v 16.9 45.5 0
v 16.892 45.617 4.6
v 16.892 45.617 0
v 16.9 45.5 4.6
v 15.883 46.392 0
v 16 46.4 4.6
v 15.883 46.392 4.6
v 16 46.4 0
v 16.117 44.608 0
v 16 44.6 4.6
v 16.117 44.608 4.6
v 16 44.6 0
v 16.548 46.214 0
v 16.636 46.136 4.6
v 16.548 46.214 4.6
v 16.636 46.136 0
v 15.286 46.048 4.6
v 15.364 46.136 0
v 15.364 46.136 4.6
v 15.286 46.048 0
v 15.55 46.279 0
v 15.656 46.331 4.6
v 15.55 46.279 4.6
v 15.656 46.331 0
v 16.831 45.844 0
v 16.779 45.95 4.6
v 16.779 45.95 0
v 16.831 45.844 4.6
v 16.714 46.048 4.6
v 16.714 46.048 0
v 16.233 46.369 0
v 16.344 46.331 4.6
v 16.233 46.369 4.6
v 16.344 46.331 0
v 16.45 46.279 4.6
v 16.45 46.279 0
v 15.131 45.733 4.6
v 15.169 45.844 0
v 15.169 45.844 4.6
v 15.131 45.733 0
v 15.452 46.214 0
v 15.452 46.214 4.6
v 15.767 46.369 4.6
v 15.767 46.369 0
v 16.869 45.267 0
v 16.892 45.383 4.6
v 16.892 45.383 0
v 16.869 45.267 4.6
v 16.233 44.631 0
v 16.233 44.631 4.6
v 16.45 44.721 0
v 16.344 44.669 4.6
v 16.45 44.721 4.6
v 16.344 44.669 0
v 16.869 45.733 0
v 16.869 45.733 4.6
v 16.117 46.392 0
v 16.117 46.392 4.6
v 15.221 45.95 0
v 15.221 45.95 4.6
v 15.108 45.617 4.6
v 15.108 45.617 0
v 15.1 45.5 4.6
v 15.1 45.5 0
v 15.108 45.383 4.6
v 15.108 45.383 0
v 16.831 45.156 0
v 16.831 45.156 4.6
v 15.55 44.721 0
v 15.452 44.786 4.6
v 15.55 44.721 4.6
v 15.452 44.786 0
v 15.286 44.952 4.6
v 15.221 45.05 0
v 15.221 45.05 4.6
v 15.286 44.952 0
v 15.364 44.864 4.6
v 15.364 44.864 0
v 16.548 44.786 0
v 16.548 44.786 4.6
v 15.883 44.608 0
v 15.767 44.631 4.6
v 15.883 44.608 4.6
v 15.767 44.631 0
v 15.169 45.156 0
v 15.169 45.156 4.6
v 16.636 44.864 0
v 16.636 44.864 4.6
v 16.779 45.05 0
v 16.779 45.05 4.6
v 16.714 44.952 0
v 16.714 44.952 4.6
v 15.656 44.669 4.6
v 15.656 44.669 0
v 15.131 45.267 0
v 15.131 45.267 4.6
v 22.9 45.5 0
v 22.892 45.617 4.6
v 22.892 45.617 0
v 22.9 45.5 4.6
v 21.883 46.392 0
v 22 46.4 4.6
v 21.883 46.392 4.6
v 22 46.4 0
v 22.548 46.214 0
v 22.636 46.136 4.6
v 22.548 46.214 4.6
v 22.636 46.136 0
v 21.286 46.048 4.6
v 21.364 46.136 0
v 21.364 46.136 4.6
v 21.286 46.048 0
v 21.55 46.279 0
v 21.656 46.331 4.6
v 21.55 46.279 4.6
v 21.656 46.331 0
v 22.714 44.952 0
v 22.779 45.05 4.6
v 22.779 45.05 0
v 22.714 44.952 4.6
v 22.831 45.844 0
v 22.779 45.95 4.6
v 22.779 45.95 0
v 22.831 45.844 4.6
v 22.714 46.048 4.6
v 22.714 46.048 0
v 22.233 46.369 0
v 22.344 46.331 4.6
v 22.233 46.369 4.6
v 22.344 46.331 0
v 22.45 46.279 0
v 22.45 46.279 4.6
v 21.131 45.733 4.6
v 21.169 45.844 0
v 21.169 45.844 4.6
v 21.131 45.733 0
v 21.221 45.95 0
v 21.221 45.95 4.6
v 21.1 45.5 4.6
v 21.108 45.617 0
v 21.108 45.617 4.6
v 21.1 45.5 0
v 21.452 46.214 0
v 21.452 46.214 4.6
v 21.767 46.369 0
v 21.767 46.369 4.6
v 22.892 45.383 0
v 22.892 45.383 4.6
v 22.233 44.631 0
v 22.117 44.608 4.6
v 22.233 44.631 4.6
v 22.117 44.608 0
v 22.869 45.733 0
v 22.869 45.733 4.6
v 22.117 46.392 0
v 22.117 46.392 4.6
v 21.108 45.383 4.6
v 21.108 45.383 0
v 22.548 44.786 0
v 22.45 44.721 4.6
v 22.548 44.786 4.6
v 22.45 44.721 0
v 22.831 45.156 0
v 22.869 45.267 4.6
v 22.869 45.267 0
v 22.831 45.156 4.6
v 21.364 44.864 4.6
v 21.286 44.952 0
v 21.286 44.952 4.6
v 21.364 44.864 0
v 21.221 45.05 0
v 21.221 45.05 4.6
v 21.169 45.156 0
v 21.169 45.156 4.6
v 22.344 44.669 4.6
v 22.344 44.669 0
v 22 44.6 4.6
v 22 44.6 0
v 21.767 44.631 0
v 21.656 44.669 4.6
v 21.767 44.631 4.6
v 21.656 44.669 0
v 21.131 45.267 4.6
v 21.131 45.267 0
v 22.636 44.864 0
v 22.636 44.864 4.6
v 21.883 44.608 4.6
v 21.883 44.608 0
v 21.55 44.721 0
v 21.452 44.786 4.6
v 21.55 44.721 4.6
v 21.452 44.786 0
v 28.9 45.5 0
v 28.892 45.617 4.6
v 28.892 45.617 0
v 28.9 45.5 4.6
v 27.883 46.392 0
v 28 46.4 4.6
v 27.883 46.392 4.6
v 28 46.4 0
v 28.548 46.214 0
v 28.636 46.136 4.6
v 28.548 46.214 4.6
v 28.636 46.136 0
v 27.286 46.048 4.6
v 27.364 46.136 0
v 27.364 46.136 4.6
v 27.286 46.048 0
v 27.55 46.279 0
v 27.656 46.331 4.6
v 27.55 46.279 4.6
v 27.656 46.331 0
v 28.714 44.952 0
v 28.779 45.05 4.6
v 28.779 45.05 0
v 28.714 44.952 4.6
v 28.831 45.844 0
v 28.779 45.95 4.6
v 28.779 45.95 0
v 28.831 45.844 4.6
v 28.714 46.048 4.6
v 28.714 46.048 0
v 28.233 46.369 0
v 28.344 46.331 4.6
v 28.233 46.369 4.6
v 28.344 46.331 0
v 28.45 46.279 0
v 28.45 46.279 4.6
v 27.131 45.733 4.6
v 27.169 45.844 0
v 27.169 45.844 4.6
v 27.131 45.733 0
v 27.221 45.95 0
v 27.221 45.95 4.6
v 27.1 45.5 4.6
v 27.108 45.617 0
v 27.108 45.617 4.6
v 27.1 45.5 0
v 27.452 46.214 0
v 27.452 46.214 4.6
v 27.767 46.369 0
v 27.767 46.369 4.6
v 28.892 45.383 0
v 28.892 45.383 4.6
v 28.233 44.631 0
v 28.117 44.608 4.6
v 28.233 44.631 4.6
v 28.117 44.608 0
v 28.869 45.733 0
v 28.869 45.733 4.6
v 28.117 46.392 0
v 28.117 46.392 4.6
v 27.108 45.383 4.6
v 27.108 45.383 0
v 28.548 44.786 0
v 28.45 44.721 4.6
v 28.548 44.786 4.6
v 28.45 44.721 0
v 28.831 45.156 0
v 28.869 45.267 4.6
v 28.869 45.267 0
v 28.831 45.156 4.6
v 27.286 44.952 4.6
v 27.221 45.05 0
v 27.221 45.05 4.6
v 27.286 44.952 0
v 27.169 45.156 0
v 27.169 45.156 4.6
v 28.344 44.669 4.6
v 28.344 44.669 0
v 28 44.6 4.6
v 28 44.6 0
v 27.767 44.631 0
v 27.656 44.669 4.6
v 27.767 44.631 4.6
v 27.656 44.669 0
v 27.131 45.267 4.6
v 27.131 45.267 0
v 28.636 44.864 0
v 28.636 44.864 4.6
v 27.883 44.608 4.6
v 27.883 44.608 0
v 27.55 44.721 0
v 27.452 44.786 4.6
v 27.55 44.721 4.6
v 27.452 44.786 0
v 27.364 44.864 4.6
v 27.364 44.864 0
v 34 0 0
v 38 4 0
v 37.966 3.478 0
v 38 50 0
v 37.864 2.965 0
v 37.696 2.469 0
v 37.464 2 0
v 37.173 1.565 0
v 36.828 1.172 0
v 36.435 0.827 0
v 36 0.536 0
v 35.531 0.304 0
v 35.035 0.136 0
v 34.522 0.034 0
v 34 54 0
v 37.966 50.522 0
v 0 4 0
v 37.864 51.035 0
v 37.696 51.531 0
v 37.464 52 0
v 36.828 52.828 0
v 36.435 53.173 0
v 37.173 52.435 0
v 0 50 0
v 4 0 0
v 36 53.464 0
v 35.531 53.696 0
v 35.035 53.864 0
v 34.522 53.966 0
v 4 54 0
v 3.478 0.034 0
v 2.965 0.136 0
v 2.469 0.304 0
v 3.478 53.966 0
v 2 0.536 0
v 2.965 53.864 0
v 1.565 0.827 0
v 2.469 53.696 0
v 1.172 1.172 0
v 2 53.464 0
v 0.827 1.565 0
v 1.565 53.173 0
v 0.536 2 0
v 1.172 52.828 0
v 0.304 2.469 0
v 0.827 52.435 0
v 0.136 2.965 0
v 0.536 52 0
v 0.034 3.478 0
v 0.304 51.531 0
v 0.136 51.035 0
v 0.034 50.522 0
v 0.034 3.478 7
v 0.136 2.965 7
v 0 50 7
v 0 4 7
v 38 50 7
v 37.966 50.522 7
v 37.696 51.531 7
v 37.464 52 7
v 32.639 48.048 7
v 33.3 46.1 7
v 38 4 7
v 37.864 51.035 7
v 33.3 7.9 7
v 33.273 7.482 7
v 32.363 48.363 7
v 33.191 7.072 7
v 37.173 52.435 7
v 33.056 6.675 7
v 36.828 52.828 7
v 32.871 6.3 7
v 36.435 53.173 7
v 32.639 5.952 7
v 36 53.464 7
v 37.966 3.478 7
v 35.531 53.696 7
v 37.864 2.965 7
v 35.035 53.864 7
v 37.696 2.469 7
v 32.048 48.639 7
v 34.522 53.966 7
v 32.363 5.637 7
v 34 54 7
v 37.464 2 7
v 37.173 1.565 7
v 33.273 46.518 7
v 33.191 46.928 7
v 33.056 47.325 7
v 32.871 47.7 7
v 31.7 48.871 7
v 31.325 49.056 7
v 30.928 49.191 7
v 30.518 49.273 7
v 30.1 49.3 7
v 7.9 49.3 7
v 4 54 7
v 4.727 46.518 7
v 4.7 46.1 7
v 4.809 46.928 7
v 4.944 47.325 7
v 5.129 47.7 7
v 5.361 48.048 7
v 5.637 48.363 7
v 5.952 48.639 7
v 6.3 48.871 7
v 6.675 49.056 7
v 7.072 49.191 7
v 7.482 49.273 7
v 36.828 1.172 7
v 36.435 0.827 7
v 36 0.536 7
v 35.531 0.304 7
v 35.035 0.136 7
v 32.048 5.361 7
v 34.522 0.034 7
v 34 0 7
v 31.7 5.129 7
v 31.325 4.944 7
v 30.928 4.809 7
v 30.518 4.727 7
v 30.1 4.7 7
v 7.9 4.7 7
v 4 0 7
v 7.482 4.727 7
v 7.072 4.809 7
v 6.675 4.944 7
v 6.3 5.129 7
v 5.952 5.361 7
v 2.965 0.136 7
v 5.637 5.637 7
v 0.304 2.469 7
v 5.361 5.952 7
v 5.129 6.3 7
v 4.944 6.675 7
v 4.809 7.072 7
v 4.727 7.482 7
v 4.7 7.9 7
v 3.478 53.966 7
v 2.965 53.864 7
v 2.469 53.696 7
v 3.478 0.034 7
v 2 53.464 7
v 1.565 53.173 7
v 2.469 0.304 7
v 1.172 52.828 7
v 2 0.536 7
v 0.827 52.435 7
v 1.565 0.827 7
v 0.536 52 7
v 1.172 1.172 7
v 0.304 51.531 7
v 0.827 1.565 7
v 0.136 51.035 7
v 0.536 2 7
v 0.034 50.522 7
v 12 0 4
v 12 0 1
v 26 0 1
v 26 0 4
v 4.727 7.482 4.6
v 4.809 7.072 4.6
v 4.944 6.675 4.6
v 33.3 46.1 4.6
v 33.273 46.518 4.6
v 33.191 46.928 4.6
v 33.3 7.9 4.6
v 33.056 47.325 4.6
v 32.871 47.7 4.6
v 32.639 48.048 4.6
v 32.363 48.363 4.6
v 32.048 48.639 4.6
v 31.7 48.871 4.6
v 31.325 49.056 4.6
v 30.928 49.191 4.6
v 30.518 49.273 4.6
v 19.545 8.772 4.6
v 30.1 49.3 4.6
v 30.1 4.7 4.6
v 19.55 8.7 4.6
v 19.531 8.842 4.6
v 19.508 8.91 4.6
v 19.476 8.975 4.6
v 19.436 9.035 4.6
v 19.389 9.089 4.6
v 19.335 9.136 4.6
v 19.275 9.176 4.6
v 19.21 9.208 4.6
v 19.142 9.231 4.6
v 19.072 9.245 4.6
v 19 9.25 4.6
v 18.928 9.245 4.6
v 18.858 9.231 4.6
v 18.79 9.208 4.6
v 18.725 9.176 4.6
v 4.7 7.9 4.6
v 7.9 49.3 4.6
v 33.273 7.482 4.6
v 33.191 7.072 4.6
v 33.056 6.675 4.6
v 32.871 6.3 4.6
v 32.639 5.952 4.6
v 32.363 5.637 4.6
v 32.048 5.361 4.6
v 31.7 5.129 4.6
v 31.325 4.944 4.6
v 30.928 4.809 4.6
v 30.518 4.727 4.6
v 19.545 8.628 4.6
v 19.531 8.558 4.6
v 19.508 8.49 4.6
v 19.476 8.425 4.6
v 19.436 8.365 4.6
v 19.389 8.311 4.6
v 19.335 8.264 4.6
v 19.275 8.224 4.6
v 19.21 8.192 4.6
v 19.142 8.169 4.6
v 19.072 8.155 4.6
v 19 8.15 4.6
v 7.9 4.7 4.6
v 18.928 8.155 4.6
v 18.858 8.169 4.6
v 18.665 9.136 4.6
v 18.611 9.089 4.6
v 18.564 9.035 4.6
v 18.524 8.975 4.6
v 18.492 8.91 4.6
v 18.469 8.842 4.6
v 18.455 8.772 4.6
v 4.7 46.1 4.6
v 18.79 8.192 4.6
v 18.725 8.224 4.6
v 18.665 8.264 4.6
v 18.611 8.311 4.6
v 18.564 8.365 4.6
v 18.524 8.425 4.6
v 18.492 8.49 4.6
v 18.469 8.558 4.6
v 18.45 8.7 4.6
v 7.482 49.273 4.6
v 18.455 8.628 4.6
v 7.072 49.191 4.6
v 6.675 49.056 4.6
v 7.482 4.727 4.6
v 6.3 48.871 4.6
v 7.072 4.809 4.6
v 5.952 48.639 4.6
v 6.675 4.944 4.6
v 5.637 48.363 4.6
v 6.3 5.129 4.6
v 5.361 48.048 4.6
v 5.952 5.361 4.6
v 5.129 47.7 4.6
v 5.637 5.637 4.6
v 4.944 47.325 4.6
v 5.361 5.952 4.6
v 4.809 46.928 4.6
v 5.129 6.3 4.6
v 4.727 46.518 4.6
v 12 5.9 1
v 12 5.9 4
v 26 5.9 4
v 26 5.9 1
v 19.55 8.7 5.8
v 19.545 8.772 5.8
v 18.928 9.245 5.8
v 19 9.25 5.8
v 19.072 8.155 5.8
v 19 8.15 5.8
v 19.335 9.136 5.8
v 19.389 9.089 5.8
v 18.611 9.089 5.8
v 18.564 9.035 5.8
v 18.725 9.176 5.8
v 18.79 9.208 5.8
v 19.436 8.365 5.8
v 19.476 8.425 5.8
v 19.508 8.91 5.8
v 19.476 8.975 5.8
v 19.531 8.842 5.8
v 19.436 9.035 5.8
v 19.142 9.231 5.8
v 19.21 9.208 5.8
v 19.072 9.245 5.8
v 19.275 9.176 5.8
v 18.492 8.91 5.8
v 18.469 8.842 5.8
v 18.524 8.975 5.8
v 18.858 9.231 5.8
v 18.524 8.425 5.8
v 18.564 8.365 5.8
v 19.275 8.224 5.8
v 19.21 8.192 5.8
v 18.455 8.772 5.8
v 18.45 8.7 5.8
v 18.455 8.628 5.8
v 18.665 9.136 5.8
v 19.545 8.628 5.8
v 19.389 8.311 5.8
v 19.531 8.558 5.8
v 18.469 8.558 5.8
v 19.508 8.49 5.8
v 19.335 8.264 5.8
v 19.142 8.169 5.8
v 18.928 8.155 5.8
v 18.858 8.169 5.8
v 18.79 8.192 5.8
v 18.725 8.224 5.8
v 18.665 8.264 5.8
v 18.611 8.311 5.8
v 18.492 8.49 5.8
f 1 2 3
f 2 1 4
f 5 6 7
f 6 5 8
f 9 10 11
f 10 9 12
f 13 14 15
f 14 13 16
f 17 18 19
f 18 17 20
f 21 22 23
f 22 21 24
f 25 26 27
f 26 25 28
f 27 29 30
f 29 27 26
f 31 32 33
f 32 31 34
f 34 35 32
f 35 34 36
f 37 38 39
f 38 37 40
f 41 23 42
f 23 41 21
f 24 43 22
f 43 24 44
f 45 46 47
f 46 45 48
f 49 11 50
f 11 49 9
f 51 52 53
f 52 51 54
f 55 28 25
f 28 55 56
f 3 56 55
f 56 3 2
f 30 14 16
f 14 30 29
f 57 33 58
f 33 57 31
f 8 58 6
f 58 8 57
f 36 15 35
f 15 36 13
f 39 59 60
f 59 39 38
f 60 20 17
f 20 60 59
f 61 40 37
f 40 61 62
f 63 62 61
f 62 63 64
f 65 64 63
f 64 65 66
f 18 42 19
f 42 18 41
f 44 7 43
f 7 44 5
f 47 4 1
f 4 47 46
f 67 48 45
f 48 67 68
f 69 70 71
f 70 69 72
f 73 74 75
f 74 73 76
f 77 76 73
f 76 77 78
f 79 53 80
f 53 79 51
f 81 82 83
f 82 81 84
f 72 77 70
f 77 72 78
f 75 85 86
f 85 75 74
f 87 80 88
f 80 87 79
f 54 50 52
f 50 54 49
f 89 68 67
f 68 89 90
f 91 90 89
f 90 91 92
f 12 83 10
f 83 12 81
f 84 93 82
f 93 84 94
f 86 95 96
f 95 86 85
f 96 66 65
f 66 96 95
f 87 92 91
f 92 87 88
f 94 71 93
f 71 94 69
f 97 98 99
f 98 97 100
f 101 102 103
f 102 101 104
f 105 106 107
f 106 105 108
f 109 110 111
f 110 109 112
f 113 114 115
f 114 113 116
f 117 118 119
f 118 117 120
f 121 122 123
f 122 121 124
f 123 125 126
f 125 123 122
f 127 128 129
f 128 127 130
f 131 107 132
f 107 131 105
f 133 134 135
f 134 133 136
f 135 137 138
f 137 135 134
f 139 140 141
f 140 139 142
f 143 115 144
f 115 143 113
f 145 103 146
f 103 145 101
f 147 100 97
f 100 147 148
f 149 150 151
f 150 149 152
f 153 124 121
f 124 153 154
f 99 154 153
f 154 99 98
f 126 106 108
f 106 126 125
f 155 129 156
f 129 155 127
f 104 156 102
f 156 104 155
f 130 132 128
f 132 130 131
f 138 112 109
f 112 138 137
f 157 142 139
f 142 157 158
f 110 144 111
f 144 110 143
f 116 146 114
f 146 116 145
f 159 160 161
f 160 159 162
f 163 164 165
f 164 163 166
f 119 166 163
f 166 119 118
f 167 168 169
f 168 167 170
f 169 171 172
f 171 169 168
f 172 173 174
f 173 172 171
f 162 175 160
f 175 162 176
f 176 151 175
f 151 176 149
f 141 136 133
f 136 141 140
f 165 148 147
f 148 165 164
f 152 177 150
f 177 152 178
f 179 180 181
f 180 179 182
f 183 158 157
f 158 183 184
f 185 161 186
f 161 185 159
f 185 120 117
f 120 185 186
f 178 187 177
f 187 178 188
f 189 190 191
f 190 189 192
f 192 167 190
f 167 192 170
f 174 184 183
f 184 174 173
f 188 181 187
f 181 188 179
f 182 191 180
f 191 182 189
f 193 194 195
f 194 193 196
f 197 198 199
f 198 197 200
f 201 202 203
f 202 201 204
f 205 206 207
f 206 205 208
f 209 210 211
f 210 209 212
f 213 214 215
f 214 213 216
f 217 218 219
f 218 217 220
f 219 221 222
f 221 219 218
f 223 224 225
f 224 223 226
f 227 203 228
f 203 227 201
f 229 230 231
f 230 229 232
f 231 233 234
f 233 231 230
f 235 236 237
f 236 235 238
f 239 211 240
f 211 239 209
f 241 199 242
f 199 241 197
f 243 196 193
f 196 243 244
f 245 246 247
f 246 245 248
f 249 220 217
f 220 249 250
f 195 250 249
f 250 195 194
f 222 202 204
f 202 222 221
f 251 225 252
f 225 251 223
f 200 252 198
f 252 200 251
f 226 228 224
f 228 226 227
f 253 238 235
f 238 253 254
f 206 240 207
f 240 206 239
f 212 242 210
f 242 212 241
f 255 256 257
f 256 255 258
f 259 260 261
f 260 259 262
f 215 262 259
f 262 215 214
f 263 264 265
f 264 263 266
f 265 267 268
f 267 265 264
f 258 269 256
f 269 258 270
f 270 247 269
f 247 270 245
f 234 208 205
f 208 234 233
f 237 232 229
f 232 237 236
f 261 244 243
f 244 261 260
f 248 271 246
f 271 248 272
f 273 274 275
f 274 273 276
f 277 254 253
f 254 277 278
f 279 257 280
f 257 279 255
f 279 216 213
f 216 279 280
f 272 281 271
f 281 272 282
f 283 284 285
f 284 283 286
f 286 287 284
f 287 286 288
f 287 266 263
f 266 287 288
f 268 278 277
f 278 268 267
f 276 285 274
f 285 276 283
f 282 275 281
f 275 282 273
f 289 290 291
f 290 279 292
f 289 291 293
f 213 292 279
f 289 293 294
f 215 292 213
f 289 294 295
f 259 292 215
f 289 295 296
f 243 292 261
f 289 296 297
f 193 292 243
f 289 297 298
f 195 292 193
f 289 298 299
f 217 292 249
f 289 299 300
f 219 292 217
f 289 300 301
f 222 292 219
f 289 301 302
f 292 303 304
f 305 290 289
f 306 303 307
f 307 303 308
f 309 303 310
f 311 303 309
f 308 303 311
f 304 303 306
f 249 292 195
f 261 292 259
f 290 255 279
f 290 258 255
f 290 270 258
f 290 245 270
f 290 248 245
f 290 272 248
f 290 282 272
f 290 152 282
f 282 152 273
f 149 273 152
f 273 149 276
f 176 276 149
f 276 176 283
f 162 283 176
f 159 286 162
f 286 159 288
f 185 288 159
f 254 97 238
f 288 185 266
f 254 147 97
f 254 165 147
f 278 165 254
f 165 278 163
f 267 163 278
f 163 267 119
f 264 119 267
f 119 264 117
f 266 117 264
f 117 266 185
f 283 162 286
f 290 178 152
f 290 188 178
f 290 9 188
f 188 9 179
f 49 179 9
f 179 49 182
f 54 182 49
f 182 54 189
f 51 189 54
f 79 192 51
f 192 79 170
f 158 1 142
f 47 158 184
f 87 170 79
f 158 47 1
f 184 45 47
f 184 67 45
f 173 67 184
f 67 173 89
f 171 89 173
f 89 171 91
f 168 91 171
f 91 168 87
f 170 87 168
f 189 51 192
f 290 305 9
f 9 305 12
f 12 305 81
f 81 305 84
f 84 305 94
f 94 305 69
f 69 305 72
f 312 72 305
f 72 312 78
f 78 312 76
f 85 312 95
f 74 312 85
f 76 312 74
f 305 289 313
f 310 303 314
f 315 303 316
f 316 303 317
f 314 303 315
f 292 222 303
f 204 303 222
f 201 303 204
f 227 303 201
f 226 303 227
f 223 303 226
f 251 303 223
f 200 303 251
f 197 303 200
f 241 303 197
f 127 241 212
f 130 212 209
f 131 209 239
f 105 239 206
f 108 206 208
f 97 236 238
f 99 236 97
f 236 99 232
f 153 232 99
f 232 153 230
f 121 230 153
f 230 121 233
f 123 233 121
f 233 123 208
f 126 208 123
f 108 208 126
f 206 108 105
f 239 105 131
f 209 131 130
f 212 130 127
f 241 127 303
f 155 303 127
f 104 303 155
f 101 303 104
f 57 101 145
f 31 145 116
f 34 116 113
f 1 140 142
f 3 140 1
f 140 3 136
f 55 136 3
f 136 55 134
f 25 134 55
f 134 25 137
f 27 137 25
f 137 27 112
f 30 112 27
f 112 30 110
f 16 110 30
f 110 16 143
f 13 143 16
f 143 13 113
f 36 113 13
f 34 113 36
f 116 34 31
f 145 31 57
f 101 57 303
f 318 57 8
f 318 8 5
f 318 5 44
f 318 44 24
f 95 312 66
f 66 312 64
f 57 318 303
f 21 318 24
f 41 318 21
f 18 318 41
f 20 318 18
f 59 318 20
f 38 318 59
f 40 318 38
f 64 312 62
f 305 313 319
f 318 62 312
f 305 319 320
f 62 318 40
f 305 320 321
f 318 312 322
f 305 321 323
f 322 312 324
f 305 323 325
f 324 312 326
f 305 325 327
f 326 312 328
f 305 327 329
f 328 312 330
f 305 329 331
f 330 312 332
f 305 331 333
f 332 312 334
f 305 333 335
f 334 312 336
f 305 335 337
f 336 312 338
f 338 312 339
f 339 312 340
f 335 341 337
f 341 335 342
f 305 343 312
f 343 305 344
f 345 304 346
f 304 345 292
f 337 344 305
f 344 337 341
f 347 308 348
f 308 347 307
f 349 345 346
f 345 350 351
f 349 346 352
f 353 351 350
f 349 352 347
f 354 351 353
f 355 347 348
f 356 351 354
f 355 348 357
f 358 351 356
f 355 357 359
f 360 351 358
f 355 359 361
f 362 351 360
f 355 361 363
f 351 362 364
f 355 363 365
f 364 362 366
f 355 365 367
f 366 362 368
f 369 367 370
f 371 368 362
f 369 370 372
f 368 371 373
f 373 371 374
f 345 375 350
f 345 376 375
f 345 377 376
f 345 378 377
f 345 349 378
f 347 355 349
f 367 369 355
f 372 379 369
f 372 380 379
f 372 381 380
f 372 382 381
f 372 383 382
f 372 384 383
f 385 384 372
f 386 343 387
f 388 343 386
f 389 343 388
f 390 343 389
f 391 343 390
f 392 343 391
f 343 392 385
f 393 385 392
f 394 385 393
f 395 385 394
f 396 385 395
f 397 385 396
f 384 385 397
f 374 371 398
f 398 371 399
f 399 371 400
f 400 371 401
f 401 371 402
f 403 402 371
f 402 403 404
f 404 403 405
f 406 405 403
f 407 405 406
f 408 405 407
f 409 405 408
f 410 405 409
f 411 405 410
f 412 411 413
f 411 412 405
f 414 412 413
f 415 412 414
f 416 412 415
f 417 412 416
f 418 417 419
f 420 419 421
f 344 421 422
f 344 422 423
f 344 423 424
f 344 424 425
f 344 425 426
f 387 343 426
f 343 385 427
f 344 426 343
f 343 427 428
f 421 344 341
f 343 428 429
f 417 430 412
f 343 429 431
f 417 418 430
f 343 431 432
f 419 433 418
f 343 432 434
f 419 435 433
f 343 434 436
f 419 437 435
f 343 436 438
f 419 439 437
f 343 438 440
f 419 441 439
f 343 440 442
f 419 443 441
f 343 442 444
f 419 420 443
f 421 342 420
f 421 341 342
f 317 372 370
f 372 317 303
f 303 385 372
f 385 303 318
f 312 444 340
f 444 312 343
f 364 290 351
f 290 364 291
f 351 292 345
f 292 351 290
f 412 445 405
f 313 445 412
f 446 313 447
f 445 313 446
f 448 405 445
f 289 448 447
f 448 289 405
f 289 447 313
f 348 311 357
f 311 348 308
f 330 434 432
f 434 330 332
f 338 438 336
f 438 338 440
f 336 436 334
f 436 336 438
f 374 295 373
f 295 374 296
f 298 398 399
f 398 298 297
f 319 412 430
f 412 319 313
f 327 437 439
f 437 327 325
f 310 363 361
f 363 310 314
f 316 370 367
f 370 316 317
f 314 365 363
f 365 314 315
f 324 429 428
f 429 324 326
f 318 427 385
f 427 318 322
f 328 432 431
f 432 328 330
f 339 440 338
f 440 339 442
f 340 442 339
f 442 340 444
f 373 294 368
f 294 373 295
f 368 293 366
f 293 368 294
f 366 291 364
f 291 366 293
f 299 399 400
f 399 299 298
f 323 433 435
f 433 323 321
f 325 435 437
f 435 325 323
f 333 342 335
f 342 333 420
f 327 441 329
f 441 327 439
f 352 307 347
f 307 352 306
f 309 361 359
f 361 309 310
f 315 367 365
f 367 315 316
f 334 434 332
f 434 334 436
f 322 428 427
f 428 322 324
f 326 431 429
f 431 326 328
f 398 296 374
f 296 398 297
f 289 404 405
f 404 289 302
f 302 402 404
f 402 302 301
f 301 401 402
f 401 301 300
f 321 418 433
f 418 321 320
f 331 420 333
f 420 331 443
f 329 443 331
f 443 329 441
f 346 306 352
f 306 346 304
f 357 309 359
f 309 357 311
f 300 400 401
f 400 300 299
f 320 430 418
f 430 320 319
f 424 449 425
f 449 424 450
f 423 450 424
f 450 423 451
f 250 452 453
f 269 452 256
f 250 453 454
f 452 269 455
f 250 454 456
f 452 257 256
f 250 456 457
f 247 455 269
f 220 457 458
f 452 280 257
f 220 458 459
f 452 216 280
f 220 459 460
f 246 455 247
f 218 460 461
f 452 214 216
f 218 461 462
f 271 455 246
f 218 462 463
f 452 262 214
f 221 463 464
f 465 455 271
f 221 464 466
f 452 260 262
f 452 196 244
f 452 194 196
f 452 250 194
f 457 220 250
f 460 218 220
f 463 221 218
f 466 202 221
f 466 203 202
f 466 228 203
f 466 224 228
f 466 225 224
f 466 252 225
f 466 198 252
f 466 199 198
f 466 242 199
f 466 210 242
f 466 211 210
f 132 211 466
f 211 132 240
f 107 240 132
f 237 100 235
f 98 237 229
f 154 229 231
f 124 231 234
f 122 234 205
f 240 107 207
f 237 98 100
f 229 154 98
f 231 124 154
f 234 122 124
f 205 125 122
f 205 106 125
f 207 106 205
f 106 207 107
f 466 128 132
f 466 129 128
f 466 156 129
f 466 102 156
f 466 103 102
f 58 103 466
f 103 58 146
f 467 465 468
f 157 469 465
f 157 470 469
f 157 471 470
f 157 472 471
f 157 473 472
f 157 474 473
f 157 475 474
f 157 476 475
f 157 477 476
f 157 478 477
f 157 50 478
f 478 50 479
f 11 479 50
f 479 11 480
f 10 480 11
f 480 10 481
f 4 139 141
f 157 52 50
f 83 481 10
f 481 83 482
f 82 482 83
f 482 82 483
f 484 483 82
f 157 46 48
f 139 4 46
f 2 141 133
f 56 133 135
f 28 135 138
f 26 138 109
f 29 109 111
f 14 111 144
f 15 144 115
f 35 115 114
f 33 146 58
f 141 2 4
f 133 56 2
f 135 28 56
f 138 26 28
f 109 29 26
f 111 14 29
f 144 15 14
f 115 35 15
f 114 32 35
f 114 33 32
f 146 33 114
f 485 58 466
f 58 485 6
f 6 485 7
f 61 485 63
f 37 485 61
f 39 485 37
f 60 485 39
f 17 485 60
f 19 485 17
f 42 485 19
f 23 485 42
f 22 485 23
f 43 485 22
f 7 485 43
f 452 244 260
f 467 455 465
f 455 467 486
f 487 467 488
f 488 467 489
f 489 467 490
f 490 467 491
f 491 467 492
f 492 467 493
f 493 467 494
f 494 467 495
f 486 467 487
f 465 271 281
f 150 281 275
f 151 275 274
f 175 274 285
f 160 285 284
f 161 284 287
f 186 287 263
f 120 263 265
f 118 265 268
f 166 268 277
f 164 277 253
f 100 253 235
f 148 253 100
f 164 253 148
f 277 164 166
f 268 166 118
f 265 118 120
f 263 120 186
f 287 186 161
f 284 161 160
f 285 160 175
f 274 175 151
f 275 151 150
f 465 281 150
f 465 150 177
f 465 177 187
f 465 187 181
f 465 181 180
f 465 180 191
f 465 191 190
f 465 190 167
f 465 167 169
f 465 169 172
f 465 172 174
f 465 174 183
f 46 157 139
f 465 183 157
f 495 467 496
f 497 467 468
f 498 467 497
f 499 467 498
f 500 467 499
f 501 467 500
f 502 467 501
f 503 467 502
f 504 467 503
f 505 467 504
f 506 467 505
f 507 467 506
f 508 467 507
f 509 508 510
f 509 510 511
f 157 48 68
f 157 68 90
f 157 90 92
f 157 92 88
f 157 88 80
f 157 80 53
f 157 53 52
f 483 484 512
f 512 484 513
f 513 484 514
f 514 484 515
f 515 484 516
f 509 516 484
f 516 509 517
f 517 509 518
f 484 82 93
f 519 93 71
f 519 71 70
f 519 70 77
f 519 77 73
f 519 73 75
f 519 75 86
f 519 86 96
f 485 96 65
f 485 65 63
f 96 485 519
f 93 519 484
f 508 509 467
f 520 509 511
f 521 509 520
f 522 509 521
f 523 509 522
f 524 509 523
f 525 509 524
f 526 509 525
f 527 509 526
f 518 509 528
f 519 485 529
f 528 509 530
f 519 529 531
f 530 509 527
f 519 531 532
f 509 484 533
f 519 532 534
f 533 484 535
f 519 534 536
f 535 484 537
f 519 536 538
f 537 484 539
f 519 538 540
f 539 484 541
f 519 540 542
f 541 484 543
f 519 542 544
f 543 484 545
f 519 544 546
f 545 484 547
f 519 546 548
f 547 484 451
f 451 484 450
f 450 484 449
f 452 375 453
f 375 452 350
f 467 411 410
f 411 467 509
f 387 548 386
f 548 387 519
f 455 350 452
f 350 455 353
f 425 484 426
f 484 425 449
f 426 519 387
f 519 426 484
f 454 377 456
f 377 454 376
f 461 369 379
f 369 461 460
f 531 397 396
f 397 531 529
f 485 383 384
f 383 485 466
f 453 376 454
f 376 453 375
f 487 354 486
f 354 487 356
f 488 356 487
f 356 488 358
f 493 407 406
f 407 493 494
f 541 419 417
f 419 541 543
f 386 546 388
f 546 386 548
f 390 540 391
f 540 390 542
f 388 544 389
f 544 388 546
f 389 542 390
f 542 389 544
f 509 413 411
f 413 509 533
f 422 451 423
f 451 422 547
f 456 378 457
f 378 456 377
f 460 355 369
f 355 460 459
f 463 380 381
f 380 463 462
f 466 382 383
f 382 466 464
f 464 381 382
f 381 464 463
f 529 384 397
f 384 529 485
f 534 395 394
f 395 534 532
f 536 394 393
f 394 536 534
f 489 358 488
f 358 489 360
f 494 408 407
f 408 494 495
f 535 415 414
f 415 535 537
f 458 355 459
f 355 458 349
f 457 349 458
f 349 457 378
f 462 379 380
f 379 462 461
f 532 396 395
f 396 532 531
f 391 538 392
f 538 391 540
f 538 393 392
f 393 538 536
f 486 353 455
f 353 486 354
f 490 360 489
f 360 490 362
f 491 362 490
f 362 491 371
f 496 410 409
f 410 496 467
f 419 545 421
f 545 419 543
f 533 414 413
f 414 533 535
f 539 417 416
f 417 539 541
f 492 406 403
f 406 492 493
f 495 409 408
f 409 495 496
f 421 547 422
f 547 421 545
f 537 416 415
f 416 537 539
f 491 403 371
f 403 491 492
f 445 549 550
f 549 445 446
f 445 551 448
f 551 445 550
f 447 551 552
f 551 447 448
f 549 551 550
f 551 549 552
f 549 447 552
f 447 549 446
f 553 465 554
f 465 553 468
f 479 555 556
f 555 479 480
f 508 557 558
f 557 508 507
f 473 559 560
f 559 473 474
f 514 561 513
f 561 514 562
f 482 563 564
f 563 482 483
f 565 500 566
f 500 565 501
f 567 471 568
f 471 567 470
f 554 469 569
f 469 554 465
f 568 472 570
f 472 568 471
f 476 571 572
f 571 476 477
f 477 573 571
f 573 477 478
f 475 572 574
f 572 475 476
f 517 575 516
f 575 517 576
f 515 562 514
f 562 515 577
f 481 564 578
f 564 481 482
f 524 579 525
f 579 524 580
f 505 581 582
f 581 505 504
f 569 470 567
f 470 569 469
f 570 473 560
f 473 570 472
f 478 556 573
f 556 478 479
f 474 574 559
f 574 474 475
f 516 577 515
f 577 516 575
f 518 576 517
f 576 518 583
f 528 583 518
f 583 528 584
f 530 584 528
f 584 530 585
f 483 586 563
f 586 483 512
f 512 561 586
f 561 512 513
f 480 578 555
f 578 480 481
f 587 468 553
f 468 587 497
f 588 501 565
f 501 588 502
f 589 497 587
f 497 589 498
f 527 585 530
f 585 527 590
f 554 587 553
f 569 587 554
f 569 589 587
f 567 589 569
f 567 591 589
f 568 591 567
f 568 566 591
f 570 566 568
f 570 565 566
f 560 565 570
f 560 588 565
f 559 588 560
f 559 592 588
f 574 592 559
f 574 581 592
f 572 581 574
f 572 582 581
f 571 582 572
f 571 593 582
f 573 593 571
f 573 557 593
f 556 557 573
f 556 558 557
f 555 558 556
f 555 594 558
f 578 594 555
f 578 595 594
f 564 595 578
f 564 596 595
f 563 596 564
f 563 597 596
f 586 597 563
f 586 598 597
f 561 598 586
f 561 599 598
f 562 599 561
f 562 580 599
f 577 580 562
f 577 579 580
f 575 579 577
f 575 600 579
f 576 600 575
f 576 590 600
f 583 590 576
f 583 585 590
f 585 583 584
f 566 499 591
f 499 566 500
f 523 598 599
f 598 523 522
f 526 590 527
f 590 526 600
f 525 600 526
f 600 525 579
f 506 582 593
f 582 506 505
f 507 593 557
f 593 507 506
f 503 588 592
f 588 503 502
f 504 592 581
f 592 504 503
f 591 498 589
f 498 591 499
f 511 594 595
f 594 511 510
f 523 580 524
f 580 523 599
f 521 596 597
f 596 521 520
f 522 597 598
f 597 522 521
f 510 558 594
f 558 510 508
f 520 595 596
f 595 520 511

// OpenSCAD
// Three-pin home-programming fixture, geometry study only. Units: mm.
// Earring sits rear-side toward three spring contacts. Verify the final
// board/tray outline, pad order and actual pogo pin drawings before use.
$fn = 48;
jig_w = 38;
jig_h = 54;
base = 7;
pocket_w = 28.6;
pocket_h = 44.6;
pocket_depth = 2.4;
pocket_x = 4.7;
pocket_y = 4.7;
board_offset = 1.3;
pad_y = 39.5;
service_pad_x = [10,16,22]; // P2 GND, P3 UPDI, P4 VTG_3V45
pin_bore_d = 1.8;           // change to measured purchased spring-pin body

module rounded_plate(w,h,r,z) {
    linear_extrude(height=z)
        hull() for (x=[r,w-r],y=[r,h-r]) translate([x,y]) circle(r=r);
}

difference() {
    rounded_plate(jig_w,jig_h,4,base);
    translate([pocket_x,pocket_y,base-pocket_depth])
        rounded_plate(pocket_w,pocket_h,3.2,pocket_depth+0.1);
    for (x=service_pad_x)
        translate([pocket_x+board_offset+x,
                   pocket_y+board_offset+pad_y,-0.1])
            cylinder(d=pin_bore_d,h=base+0.2);
    // Lead exit points away from the earring.
    translate([12,-0.1,1]) cube([14,6,3]);
}

// A shallow locator references the off-centre hook hole. Omit if the
// finished tray covers the hole; replace with a verified keyed contour.
translate([pocket_x+board_offset+13,
           pocket_y+board_offset+2.7,base-pocket_depth])
    cylinder(d=1.1,h=1.2);
